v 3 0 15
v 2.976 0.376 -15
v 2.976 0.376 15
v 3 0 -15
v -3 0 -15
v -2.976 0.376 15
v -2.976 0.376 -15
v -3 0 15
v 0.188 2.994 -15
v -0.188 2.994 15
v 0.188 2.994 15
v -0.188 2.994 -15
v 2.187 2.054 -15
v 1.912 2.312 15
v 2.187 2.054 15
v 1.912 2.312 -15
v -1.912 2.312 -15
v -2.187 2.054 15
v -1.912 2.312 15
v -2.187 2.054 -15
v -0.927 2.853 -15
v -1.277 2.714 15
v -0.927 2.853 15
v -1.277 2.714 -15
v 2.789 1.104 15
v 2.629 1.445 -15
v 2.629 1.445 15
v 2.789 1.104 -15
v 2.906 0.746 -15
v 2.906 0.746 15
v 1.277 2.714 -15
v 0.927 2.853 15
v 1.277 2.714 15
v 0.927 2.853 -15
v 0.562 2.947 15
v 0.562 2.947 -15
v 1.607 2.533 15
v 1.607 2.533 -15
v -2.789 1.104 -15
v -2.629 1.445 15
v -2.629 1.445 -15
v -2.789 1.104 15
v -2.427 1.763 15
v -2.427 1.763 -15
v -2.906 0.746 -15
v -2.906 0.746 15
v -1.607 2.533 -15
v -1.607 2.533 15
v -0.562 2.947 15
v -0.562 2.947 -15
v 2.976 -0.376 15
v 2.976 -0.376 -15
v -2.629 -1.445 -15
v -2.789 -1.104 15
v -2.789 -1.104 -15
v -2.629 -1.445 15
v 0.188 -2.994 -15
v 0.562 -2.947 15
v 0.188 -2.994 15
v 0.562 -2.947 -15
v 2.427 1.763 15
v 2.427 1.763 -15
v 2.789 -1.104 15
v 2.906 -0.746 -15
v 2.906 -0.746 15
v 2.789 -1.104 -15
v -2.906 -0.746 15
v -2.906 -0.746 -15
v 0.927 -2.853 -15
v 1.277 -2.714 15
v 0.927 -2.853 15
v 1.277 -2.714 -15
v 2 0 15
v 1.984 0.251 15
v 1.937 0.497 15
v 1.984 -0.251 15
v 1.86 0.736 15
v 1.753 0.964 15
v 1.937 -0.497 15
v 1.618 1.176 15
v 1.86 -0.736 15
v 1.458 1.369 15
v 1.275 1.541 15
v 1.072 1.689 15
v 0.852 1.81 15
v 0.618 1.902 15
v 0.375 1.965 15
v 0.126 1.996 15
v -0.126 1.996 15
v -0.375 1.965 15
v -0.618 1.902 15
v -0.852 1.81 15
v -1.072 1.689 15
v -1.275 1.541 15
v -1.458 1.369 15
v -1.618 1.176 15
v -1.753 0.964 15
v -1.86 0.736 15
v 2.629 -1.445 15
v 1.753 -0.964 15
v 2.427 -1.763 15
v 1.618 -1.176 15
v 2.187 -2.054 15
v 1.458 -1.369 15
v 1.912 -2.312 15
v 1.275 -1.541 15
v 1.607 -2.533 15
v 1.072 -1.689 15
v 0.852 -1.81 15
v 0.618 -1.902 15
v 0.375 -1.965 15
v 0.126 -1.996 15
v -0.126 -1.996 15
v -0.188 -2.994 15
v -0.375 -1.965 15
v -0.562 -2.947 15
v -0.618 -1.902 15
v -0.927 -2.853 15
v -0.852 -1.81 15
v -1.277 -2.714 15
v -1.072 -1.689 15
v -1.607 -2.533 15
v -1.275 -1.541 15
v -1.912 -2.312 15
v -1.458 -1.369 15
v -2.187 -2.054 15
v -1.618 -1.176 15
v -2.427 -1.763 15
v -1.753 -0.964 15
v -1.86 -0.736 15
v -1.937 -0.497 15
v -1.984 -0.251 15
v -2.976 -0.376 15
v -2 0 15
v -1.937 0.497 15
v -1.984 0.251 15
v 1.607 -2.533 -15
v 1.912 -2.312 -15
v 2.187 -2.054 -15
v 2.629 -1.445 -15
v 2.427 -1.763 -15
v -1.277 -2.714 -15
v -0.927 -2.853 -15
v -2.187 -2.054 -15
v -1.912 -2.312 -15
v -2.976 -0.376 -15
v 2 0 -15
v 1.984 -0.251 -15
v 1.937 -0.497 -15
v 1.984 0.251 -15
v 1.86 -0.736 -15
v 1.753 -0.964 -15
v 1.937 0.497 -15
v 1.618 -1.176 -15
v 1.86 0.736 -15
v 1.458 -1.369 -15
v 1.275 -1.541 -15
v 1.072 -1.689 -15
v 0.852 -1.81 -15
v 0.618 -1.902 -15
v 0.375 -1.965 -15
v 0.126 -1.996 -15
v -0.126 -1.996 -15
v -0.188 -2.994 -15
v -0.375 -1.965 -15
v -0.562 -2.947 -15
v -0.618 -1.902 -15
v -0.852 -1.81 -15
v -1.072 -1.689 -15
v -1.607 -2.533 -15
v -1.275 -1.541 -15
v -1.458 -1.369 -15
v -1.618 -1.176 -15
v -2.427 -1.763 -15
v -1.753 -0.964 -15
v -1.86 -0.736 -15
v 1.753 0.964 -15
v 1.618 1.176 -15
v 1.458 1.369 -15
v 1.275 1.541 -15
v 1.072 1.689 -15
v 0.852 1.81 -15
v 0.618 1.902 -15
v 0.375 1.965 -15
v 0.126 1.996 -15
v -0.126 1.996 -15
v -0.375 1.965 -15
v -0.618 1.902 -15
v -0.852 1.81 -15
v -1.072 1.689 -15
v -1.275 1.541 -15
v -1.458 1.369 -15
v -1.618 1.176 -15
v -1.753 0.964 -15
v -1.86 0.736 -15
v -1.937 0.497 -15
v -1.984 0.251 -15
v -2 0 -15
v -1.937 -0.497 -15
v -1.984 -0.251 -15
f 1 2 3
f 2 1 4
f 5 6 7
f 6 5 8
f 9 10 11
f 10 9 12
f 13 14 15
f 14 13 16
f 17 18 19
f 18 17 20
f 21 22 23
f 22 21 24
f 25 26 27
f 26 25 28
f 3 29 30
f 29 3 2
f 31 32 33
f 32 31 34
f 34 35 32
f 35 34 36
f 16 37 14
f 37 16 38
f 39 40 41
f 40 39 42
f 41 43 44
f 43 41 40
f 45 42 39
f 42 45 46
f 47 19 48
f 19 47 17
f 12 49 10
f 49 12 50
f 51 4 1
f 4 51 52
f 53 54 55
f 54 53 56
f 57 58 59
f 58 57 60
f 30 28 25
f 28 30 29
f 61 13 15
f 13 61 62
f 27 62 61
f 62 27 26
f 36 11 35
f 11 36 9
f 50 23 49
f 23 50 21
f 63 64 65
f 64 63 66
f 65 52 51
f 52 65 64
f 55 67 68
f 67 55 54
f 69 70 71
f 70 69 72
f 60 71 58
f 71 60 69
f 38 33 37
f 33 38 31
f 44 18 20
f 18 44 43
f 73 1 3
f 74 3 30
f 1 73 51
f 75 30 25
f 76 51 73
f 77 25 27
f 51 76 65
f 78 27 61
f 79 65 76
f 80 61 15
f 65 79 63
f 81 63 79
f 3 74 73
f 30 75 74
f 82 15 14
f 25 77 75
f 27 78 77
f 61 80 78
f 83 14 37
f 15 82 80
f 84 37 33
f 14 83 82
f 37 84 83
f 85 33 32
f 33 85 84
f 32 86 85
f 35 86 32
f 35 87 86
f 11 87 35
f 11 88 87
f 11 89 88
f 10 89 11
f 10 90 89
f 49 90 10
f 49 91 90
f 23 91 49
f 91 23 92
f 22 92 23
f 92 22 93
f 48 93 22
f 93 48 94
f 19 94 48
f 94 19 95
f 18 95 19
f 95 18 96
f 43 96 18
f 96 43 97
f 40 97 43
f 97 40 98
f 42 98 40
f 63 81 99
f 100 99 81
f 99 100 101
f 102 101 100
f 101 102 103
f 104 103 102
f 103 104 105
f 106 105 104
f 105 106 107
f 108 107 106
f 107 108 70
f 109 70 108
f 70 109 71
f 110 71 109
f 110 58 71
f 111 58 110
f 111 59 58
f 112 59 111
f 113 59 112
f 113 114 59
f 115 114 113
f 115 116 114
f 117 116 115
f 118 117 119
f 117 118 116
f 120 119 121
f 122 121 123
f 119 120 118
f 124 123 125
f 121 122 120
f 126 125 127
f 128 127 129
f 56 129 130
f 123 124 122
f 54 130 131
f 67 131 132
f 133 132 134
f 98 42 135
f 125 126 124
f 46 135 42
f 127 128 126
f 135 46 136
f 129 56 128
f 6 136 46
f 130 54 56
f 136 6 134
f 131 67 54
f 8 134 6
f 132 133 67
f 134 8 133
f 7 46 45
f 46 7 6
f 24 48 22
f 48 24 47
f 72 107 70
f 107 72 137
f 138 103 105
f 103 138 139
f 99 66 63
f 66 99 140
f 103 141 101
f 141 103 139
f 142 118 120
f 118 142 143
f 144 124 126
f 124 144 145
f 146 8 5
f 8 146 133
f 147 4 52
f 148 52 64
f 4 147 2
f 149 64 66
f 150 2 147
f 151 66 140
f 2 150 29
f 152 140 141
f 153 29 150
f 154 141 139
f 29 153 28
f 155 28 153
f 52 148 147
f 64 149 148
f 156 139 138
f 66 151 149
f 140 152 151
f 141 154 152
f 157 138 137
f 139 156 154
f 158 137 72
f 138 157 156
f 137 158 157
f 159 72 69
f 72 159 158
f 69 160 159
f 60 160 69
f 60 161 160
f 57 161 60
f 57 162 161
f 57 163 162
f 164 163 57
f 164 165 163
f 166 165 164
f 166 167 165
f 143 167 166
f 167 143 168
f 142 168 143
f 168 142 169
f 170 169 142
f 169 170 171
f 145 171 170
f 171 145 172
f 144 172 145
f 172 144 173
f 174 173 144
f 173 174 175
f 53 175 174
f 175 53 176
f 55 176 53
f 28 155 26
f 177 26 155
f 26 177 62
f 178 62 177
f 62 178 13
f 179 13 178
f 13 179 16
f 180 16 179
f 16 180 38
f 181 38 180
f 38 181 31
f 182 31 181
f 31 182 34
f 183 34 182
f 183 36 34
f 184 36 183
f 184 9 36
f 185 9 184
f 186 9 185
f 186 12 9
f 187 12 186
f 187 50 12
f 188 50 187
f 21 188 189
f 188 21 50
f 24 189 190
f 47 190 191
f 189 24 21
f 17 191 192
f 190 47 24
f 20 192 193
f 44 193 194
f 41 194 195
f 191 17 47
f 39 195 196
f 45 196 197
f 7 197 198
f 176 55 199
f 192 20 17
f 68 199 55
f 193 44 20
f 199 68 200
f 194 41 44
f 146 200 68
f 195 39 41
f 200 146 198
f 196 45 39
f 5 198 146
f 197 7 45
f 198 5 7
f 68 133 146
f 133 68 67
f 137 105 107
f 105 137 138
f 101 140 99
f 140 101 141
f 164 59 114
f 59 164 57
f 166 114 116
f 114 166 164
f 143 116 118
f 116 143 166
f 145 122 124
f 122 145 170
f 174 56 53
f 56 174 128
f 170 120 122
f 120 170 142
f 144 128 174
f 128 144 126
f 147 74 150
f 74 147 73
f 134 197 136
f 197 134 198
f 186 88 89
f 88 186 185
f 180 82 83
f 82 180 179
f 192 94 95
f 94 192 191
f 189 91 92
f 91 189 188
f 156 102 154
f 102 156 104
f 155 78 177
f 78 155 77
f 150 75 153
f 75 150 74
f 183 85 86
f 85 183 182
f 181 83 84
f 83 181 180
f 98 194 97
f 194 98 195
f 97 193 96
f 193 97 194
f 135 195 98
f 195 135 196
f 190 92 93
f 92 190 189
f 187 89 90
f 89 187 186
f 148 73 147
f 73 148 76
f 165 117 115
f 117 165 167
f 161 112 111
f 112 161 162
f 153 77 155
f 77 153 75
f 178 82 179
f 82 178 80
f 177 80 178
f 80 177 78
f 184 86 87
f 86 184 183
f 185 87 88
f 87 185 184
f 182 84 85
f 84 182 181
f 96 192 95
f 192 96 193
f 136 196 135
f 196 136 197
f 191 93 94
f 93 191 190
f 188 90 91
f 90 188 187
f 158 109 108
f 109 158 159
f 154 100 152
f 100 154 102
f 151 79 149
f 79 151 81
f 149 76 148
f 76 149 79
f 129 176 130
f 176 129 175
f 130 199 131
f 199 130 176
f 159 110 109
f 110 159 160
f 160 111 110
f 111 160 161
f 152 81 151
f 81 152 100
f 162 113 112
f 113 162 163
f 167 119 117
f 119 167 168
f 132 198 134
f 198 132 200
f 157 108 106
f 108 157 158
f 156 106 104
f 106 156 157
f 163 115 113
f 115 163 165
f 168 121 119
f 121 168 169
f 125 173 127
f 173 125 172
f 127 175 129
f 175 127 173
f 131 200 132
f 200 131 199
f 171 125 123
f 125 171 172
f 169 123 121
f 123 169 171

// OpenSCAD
$fn = 50;


difference() {
	union() {
		translate(v = [0, 0, -15.0000000000]) {
			cylinder(h = 30, r = 3.0000000000);
		}
	}
	union() {
		translate(v = [0, 0, -100.0000000000]) {
			cylinder(h = 200, r = 2.0000000000);
		}
	}
}
